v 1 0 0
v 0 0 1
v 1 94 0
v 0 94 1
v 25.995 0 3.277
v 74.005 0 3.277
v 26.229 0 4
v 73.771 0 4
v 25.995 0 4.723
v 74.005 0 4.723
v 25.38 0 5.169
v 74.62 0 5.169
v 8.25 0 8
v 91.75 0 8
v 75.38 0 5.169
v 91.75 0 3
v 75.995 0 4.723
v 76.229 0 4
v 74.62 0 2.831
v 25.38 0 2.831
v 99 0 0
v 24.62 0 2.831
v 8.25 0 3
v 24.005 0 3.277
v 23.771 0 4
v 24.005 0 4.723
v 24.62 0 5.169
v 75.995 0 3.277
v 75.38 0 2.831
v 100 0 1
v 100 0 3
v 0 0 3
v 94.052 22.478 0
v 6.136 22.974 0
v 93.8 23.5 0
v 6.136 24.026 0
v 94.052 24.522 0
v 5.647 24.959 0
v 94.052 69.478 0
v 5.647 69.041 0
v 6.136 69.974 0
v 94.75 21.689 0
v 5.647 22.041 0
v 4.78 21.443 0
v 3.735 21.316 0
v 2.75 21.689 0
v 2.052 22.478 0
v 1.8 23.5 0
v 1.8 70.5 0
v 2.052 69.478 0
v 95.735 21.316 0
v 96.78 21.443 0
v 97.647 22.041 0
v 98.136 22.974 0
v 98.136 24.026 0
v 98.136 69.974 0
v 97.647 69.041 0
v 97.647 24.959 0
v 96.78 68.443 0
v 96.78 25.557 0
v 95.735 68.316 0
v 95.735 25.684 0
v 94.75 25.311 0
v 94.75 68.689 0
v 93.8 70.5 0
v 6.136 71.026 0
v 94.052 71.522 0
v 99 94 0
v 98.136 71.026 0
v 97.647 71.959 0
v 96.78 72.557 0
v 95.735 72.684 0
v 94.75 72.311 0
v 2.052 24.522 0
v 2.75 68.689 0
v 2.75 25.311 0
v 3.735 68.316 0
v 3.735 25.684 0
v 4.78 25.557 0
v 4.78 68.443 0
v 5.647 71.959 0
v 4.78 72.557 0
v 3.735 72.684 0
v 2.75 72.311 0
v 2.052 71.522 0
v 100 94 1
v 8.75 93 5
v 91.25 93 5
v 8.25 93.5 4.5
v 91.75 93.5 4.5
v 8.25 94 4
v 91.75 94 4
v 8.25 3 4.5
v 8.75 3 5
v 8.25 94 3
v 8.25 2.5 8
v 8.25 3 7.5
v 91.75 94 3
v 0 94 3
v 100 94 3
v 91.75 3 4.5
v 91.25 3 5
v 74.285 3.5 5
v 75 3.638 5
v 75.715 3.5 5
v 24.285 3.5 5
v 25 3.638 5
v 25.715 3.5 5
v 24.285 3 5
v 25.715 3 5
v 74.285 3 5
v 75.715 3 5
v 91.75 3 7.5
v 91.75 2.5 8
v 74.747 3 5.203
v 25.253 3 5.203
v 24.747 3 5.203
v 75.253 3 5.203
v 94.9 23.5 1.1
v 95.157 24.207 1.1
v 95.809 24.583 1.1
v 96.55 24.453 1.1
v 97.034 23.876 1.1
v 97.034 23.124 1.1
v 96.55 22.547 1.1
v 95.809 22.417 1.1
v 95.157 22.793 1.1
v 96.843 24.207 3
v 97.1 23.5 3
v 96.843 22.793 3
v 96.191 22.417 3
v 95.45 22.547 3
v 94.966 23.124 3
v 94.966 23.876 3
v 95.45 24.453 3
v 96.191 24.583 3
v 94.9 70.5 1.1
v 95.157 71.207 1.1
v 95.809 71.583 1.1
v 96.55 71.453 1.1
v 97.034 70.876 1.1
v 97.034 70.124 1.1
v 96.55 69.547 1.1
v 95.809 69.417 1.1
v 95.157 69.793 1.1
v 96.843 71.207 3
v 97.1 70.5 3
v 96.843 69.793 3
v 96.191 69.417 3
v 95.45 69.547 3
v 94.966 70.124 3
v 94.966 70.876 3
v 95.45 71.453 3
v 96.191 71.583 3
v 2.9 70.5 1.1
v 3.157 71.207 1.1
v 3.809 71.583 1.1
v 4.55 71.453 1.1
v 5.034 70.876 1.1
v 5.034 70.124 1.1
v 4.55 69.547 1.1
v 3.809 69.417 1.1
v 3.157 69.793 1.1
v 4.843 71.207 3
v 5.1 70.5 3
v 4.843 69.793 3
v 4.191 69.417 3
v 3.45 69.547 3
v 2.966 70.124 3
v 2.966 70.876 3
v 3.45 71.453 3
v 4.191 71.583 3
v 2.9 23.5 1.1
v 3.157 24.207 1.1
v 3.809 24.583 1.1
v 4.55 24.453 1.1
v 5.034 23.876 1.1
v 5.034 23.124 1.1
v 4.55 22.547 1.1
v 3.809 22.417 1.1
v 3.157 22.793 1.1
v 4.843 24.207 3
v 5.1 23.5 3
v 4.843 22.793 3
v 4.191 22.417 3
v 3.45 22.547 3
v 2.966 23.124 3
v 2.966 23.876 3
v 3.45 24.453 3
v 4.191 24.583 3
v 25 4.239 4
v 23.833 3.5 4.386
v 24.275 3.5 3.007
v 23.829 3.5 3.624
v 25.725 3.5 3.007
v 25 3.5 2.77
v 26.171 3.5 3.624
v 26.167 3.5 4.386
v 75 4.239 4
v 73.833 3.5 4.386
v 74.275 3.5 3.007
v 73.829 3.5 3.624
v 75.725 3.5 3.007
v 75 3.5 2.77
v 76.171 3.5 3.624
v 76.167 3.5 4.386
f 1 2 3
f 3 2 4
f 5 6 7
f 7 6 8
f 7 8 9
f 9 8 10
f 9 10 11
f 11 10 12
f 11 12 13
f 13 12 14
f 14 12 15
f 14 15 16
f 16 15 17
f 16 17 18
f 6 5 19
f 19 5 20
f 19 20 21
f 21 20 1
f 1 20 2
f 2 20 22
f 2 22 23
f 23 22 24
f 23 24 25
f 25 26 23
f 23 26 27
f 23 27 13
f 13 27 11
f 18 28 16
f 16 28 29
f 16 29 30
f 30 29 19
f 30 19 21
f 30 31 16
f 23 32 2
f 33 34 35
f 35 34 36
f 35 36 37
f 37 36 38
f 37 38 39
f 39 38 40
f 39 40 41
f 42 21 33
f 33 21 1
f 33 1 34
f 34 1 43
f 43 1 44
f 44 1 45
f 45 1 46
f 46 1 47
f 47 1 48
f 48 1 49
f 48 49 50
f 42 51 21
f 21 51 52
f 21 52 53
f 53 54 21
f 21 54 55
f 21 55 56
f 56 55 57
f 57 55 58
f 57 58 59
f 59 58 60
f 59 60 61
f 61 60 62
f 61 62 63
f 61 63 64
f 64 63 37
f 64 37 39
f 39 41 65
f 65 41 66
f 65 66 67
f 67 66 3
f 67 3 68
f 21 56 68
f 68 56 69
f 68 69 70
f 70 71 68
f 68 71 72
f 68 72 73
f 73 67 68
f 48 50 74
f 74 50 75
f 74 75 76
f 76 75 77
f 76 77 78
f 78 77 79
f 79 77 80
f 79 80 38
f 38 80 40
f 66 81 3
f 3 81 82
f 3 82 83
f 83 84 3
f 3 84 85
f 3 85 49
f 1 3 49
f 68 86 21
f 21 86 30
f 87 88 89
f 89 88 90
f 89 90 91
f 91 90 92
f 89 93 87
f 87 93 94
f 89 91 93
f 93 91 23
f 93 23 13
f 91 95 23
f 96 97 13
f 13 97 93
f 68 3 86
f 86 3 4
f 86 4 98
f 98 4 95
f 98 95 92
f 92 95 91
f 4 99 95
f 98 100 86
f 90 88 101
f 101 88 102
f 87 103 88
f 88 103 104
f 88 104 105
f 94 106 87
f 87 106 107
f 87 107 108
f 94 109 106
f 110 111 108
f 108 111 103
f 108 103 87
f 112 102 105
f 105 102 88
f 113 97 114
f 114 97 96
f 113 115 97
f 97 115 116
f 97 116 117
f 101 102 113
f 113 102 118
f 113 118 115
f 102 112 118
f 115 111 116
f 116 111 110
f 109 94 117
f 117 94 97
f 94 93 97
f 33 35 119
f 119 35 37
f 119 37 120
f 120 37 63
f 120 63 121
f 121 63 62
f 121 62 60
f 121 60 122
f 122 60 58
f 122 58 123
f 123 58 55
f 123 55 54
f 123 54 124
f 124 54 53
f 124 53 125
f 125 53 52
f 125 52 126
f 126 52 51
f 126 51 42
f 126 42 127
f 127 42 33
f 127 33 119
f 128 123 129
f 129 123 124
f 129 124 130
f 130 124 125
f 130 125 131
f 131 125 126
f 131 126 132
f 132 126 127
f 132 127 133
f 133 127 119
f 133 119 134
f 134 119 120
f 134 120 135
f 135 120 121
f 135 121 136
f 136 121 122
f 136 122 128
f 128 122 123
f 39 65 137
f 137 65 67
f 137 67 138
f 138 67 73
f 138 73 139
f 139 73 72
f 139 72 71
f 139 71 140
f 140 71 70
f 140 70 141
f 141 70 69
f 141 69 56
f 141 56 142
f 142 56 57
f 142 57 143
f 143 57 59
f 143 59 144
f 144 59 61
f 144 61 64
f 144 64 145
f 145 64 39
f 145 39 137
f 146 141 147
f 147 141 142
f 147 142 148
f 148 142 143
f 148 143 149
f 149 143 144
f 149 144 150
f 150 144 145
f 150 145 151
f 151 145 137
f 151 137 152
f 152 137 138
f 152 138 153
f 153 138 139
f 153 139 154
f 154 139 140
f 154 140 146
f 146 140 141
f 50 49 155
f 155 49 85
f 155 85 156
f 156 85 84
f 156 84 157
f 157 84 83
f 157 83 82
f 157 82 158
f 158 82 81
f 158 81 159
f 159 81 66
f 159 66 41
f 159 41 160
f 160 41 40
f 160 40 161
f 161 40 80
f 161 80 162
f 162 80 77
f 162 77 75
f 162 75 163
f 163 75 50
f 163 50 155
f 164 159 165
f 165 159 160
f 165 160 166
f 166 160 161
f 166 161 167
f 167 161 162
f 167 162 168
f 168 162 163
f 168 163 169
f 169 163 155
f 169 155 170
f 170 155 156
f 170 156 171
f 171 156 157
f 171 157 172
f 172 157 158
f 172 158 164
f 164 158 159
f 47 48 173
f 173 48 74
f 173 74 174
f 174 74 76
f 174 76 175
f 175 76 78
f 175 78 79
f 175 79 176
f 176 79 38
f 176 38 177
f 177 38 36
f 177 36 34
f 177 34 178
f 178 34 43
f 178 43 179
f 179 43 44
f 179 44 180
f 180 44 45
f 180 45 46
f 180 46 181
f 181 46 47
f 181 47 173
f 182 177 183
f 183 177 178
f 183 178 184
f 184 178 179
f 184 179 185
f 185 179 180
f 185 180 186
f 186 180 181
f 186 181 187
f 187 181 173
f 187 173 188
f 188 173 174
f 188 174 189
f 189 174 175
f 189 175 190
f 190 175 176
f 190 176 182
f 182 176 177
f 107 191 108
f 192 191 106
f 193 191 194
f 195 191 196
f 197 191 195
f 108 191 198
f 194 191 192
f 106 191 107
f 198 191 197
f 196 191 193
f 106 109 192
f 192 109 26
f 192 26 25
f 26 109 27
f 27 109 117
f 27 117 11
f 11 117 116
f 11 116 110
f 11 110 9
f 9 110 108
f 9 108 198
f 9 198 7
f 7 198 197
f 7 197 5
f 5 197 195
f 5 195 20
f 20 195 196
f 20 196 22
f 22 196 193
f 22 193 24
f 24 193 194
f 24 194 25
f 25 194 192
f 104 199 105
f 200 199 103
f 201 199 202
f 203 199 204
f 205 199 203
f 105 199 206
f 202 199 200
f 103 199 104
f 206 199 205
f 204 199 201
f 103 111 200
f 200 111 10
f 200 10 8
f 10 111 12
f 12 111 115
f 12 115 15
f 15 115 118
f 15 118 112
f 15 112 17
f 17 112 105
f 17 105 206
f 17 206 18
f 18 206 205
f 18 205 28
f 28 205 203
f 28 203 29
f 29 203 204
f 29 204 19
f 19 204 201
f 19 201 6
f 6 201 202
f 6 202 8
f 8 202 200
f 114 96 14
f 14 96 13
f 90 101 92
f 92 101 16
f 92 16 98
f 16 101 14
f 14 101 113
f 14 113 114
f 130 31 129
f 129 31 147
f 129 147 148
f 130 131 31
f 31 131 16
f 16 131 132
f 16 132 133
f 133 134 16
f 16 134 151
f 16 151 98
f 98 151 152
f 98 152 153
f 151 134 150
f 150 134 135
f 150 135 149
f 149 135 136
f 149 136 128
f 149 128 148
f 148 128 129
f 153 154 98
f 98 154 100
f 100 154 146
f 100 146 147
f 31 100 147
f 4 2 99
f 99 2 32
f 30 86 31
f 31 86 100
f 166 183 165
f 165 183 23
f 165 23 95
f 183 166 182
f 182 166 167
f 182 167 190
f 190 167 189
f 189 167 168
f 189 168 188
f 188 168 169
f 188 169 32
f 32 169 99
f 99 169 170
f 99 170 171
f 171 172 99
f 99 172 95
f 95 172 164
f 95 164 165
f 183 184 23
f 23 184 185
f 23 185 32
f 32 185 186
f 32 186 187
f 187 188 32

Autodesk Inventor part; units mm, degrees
ref_plane "YZ Plane" through (0, 0, 0) normal (1, 0, 0) x (0, 1, 0)
ref_plane "XZ Plane" through (0, 0, 0) normal (0, 1, 0) x (-1, 0, 0)
ref_plane "XY Plane" through (0, 0, 0) normal (0, 0, 1) x (1, 0, 0)
sketch "Sketch1" plane through (0, 0, 0) normal (0, 0, 1) x (1, 0, 0)
  line L0 (0, 0) -> (100, 0)
  line L1 (100, 0) -> (100, 94)
  line L2 (100, 94) -> (0, 94)
  line L3 (0, 94) -> (0, 0)
  dimension "d0" = 100
  dimension "d1" = 94
extrude "Extrusion1" add sketch "Sketch1" along normal blind 3
sketch "Sketch2" plane through (0, 0, 3) normal (0, 0, 1) x (1, 0, 0)
  line L0 (100, 94) -> (0, 94) projected
  line L1 (8.25, 94) -> (91.75, 94)
  line L2 (91.75, 94) -> (91.75, 0)
  line L3 (91.75, 0) -> (8.25, 0)
  line L4 (8.25, 0) -> (8.25, 94)
  line L5 (100, 0) -> (100, 94) construction
  line L6 (100, 94) -> (92, 94) construction
  line L7 (92, 94) -> (92, 0) construction
  line L8 (92, 0) -> (100, 0) construction
  line L9 (100, 0) -> (100, 94) construction
  line L10 (0, 94) -> (8, 94) construction
  line L11 (8, 94) -> (8, 0) construction
  line L12 (8, 0) -> (0, 0) construction
  line L13 (0, 0) -> (0, 94) construction
  line L14 (0, 0) -> (100, 0) construction
  dimension "d4" = 8
  dimension "d5" = 0.25
  dimension "d6" = 0.25
extrude "Extrusion2" add sketch "Sketch2" along normal blind 2
sketch "Sketch4" plane through (0, 0, 0) normal (0, -1, 0) x (1, 0, 0)
  line L0 (91.75, 5) -> (8.25, 5) projected
  line L1 (8.25, 5) -> (91.75, 5)
  line L2 (91.75, 5) -> (91.75, 8)
  line L3 (91.75, 8) -> (8.25, 8)
  line L4 (8.25, 8) -> (8.25, 5)
  line L5 (91.75, 3) -> (91.75, 5) projected
  line L6 (0, 0) -> (100, 0) projected
  dimension "d10" = 8
extrude "Extrusion3" add sketch "Sketch4" against normal blind 3
sketch "Sketch6" plane through (0, 0, 0) normal (0, -1, 0) x (1, 0, 0)
  line L0 (0, 0) -> (100, 0) projected
  line L1 (91.75, 8) -> (8.25, 8) projected
  line L2 (100, 0) -> (100, 3) projected
  point P0 (25, 4)
  point P1 (75, 4)
  dimension "d20" = 8
  dimension "d21" = 4
  dimension "d22" = 100
  dimension "d23" = 25
  dimension "d24" = 50
hole "Hole1" at (25, 0, 4) at (75, 0, 4) direction (0, 1, 0) diameter 2.459 depth 3.5 tip angle 118 thread size "M3x0.5" class "6H" standard "ANSI Metric M Profile"
sketch "Sketch7" plane through (0, 0, 0) normal (0, 0, -1) x (-1, 0, 0)
  line L0 (-91.75, 94) -> (-91.75, 0) projected
  line L1 (-8.25, 0) -> (-8.25, 94) projected
  line L2 (-100, 0) -> (-100, 94) projected
  line L3 (0, 94) -> (0, 0) projected
  line L4 (-100, 94) -> (0, 94) projected
  point P0 (-96, 70.5)
  point P1 (-4, 70.5)
  point P2 (-96, 23.5)
  point P3 (-4, 23.5)
  dimension "d32" = 8.25
  dimension "d33" = 4
  dimension "d34" = 4
  dimension "d35" = 94
  dimension "d36" = 23.5
  dimension "d39" = 47
hole "Hole2" at (96, 70.5, 0) at (4, 70.5, 0) at (96, 23.5, 0) at (4, 23.5, 0) direction (0, 0, 1) diameter 2.2 depth 3.5 tip angle 118 countersink diameter 4.4 countersink angle 90 clearance for "Flat Head Machine Screw" size "M2" standard "Ansi Metric M Profile"
chamfer "Chamfer2" distance 0.5 angle 45 3 edges at (8.25, 48.5, 5) (50, 3, 8) (91.75, 48.5, 5)
chamfer "Chamfer3" distance 1 angle 45 1 edges at (50, 94, 5)
chamfer "Chamfer4" distance 1 angle 45 2 edges at (100, 47, 0) (0, 47, 0)
equation "\"d6\" = d5"
equation "\"d21\" = 0.5 * d20"
equation "\"d23\" = 0.25 * d22"
equation "\"d24\" = 2 * d23"
equation "\"d34\" = d33"
equation "\"d36\" = 0.25 * d35"
equation "\"d39\" = 2 * d36"
properties part number "FrontPanel" material "Aluminum 6061"
